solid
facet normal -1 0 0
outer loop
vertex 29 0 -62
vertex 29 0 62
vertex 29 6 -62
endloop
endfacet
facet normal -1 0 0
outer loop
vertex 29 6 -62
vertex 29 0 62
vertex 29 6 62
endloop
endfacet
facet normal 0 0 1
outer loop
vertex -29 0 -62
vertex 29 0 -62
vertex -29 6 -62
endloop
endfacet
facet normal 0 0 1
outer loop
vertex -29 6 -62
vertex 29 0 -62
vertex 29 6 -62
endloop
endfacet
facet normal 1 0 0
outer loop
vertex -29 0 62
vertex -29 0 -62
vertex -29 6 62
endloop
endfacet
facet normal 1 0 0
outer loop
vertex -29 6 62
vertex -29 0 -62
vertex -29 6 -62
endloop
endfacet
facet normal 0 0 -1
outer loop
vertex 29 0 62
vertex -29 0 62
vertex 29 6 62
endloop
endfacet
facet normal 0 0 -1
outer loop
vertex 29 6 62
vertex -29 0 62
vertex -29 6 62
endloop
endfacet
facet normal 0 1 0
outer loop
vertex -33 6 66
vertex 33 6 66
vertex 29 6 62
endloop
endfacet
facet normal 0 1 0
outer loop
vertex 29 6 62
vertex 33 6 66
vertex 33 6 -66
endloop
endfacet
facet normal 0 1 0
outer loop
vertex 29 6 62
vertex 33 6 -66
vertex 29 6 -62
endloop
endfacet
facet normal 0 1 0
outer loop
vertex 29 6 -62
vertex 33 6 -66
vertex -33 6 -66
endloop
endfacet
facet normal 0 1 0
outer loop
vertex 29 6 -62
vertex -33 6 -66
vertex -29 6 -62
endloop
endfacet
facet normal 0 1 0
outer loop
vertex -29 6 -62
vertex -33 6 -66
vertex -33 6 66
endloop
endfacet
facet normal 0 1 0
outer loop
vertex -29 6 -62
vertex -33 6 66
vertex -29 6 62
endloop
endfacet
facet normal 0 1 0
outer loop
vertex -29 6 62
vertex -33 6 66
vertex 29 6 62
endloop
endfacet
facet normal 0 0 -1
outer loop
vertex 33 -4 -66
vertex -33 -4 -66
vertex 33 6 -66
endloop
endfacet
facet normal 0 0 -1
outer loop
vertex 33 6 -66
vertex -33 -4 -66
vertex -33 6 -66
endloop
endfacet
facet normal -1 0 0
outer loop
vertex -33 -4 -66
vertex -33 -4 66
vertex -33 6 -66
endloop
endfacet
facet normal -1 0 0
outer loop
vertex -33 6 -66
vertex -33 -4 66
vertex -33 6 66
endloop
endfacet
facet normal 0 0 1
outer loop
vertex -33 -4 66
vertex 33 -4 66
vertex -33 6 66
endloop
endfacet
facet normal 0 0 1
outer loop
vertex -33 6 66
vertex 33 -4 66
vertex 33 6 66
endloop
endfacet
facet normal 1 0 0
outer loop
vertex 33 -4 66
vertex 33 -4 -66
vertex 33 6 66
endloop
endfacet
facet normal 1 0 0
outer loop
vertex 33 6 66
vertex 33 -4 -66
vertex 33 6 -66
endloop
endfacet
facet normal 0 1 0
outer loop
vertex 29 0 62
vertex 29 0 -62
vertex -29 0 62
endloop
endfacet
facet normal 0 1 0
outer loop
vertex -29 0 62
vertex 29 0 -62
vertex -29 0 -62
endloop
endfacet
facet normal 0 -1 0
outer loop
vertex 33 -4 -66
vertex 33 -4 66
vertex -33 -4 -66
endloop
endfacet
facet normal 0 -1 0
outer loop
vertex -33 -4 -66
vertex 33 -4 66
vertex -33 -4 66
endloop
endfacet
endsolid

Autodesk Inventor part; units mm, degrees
ref_plane "YZ Plane" through (0, 0, 0) normal (1, 0, 0) x (0, 1, 0)
ref_plane "XZ Plane" through (0, 0, 0) normal (0, 1, 0) x (-1, 0, 0)
ref_plane "XY Plane" through (0, 0, 0) normal (0, 0, 1) x (1, 0, 0)
sketch "Sketch1" plane through (0, 0, 0) normal (0, 1, 0) x (-1, 0, 0)
  line L0 (29, 62) -> (-29, 62)
  line L1 (-29, 62) -> (-29, -62)
  line L2 (-29, -62) -> (29, -62)
  line L3 (29, -62) -> (29, 62)
  line L4 (29, 62) -> (33, 62)
  line L5 (33, 62) -> (33, 66)
  line L6 (33, 66) -> (29, 66)
  line L7 (29, 66) -> (29, 62)
  line L8 (29, -62) -> (33, -62)
  line L9 (33, -62) -> (33, -66)
  line L10 (33, -66) -> (29, -66)
  line L11 (29, -66) -> (29, -62)
  line L12 (-29, -62) -> (-29, -66)
  line L13 (-29, -66) -> (-33, -66)
  line L14 (-33, -66) -> (-33, -62)
  line L15 (-33, -62) -> (-29, -62)
  line L16 (-29, 62) -> (-33, 62)
  line L17 (-33, 62) -> (-33, 66)
  line L18 (-33, 66) -> (-29, 66)
  line L19 (-29, 66) -> (-29, 62)
  line L20 (29, 66) -> (-29, 66)
  line L21 (-33, 62) -> (-33, -62)
  line L22 (-29, -66) -> (29, -66)
  line L23 (33, -62) -> (33, 62)
  line L24 (-33, 66) -> (-32.8039, 66)
  point P0 (0, 0)
  dimension "d2" = 58
  dimension "d3" = 124
  dimension "d5" = 4
  dimension "d6" = 4
  dimension "d7" = 4
  dimension "d8" = 4
  dimension "d9" = 4
  dimension "d10" = 4
  dimension "d11" = 4
extrude "Extrusion1" add sketch "Sketch1" against normal blind 4
extrude "Extrusion2" add sketch "Sketch1" along normal blind 6 contours L4 L23 L8 L3 | L7 L6 L5 L4 | L0 L19 L20 L7 | L1 L15 L21 L16 | L16 L17 L18 L19 | L11 L22 L12 L2 | L8 L9 L10 L11 | L12 L13 L14 L15
properties part number "Deksel sensor" material "ABS Plastic"
